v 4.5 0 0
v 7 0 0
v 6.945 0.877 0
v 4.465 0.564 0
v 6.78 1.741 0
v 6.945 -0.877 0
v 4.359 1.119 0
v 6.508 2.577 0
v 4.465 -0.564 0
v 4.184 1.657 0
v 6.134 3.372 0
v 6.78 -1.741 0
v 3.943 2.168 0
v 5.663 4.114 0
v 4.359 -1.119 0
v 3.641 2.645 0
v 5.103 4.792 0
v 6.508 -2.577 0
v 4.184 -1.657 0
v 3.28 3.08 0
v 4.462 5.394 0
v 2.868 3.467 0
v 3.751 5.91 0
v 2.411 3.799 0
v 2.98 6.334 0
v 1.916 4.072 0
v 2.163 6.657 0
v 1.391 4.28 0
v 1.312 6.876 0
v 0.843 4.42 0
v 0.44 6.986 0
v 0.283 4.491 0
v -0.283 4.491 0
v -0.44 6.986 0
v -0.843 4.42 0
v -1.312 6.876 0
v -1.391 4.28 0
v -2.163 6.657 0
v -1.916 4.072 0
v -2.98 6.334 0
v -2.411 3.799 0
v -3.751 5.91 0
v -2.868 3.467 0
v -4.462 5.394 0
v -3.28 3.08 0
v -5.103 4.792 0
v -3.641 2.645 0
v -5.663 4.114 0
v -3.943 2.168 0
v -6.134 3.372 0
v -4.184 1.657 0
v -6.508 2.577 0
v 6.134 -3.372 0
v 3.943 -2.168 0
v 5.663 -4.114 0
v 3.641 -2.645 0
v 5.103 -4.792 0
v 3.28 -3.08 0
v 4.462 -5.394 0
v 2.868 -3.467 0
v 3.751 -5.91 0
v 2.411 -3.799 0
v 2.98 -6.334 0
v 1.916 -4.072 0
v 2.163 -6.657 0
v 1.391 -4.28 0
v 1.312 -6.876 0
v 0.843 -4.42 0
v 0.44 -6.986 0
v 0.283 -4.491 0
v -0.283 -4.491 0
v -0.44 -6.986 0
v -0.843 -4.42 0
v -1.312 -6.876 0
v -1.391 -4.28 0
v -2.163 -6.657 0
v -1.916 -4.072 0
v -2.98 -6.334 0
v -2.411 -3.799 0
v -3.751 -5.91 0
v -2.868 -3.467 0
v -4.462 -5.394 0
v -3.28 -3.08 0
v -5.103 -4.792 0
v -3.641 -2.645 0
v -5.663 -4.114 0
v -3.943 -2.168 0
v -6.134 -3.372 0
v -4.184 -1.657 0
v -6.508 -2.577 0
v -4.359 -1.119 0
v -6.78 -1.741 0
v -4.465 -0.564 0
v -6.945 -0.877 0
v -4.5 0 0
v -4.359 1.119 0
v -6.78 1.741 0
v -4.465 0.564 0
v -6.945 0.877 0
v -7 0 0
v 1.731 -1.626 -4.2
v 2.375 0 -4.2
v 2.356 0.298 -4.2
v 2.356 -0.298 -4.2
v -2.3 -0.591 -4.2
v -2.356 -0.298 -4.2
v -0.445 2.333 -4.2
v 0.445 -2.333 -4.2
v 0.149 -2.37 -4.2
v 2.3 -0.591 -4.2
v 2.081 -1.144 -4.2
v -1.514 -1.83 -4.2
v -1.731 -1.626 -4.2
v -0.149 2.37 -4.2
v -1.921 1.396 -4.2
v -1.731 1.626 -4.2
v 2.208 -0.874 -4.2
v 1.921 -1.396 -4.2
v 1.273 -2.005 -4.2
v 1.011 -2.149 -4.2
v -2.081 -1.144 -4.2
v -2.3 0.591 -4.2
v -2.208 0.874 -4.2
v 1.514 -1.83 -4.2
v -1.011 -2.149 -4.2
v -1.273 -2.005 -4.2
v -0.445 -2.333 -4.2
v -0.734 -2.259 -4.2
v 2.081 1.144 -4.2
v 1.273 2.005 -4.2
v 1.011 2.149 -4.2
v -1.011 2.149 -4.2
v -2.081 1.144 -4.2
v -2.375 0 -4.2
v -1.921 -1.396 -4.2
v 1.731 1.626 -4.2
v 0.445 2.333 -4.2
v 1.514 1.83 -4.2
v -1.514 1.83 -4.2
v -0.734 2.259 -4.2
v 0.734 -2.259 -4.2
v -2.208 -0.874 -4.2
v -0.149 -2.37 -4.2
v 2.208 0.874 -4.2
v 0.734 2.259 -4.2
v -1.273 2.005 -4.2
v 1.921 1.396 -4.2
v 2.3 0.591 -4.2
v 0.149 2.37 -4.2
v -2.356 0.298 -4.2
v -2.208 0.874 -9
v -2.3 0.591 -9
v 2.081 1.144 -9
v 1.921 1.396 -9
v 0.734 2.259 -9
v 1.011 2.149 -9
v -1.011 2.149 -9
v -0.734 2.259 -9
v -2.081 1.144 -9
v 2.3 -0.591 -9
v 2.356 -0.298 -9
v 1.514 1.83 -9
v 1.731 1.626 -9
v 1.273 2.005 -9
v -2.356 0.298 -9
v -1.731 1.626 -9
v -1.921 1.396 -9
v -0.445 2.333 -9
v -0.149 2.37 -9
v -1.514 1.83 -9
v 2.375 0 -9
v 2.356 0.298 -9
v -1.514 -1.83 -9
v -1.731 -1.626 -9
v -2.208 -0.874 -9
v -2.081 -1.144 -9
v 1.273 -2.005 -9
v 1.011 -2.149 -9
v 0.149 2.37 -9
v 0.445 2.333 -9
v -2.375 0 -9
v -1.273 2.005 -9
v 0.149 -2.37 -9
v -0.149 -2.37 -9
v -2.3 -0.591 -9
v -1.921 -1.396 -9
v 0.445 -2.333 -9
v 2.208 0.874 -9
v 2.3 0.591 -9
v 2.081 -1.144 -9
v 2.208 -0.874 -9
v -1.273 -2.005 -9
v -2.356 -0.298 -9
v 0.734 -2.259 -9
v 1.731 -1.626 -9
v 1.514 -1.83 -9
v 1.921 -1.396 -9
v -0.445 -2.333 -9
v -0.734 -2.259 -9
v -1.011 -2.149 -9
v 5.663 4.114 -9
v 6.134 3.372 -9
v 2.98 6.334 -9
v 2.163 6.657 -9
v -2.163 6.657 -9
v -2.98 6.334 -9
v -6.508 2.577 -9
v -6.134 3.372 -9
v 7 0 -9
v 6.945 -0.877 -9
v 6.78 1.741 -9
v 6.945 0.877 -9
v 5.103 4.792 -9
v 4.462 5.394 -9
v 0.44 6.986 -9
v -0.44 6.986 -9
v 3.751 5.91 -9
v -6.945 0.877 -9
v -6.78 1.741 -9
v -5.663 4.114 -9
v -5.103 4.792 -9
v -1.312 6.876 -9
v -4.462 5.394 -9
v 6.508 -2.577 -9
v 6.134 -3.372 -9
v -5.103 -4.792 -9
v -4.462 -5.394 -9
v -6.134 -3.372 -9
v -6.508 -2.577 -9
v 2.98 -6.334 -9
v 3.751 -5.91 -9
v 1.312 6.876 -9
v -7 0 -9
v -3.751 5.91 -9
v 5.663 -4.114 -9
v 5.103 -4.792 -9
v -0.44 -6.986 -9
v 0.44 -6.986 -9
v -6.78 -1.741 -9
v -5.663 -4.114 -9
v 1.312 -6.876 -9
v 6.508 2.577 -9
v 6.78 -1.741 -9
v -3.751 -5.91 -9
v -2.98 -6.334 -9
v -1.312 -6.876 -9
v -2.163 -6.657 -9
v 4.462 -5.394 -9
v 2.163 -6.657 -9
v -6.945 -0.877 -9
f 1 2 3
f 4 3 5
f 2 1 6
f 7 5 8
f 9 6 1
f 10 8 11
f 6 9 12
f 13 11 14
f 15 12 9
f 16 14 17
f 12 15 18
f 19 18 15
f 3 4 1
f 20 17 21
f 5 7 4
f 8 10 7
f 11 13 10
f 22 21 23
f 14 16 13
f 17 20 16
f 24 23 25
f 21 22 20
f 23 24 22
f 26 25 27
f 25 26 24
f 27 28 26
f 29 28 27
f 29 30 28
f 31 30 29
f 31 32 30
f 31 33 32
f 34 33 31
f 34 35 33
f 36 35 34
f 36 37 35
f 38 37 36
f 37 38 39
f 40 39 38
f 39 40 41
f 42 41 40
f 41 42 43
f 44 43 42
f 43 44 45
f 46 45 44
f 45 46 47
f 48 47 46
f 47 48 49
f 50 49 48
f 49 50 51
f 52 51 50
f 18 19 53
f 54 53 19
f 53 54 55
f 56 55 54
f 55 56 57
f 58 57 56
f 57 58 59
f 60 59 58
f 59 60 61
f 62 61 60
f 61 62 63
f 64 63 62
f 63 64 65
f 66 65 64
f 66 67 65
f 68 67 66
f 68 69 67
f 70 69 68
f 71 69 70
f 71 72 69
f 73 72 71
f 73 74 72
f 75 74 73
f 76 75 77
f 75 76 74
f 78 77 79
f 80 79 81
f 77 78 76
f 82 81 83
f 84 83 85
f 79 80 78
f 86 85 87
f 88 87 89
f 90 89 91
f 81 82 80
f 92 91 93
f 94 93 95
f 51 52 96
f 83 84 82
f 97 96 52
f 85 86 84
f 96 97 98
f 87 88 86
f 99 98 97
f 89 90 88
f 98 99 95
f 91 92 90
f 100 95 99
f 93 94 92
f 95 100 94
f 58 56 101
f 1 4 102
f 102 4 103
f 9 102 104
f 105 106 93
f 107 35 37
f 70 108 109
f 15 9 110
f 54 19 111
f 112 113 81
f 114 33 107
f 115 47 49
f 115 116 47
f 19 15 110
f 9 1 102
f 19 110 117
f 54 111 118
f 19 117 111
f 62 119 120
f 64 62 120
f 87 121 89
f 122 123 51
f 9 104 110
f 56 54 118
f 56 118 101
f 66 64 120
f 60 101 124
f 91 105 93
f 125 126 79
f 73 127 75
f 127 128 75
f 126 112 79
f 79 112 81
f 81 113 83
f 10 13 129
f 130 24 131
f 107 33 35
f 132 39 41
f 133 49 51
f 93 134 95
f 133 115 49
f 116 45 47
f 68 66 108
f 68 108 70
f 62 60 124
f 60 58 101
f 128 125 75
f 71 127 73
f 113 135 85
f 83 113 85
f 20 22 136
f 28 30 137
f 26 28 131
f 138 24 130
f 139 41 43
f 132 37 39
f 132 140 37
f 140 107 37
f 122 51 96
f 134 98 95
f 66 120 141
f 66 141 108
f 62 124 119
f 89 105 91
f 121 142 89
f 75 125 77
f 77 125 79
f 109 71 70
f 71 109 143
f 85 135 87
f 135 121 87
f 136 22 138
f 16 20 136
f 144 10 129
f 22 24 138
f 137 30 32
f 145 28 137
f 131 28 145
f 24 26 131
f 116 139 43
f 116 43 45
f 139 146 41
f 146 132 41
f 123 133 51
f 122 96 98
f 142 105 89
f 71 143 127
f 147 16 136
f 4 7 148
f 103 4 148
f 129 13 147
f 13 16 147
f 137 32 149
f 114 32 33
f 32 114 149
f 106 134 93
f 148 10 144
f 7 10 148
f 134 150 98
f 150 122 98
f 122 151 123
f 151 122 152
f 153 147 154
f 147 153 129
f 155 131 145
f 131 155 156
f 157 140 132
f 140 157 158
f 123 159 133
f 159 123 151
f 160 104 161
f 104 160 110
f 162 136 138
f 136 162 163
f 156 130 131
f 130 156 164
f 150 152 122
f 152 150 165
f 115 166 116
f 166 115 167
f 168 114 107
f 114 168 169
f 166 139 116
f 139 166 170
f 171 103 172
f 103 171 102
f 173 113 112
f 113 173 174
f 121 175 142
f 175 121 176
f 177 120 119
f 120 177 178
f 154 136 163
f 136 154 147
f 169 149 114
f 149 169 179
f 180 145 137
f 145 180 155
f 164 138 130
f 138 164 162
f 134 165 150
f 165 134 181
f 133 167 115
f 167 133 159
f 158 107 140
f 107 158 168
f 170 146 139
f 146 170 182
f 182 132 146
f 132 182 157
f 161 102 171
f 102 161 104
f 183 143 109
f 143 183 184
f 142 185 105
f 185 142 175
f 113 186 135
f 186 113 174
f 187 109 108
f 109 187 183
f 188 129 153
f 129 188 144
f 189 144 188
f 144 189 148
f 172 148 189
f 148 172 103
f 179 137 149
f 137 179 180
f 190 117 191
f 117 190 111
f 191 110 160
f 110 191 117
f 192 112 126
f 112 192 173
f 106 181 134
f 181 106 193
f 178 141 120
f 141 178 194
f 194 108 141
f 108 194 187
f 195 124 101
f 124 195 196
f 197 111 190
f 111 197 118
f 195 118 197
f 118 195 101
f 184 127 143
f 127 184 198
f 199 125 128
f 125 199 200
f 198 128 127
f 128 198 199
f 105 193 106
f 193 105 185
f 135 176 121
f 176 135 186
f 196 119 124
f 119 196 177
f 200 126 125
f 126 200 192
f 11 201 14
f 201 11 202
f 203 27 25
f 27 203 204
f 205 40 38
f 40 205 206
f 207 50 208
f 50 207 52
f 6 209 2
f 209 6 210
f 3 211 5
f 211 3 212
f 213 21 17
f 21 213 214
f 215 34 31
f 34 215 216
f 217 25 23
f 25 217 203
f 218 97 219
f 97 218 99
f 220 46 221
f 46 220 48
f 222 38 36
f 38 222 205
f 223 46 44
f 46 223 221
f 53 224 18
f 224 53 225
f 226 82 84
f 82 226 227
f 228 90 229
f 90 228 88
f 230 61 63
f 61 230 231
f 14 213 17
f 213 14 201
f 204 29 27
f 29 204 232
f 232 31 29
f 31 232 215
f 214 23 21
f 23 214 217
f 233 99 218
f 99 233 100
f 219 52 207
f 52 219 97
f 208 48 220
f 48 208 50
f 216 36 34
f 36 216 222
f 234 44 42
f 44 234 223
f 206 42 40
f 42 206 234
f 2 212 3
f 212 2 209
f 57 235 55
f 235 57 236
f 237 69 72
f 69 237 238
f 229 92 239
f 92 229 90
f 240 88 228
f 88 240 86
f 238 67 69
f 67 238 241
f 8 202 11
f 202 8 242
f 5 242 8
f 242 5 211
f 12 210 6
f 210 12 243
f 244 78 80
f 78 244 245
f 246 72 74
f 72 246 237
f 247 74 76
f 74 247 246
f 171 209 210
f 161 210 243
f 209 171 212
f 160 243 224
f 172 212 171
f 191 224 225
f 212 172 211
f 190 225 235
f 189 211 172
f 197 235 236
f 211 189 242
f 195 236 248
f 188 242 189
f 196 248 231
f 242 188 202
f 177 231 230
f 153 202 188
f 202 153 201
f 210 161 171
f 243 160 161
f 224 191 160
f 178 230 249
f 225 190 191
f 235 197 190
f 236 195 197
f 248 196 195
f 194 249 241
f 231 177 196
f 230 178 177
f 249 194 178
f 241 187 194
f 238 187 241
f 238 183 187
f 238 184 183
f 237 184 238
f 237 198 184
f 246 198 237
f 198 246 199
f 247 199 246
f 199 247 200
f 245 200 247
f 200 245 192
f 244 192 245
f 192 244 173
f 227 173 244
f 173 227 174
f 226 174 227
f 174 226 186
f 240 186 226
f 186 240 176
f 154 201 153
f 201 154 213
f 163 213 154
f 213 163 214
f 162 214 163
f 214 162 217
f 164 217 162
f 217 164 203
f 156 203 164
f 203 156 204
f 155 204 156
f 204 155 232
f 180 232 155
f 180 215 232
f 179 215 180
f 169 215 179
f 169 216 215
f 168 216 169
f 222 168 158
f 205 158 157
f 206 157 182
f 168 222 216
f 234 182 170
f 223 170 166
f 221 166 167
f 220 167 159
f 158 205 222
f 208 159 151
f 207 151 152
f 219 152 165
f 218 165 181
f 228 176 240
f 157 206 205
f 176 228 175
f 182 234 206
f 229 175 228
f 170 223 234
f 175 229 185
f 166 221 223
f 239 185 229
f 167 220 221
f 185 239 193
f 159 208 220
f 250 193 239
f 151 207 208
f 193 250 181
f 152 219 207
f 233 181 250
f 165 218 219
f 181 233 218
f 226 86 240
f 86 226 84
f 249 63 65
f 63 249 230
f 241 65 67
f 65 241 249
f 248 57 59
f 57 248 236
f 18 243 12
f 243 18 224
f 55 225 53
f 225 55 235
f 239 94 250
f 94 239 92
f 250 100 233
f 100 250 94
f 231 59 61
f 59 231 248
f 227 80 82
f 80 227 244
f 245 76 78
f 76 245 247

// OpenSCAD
$fn = 50;


difference() {
	union() {
		translate(v = [0, 0, -9.0000000000]) {
			cylinder(h = 9, r = 7.0000000000);
		}
	}
	union() {
		translate(v = [0, 0, 0]) {
			rotate(a = [0, 0, 0]) {
				difference() {
					union() {
						translate(v = [0, 0, -12.0000000000]) {
							cylinder(h = 12, r = 2.2500000000);
						}
						translate(v = [0, 0, -4.2000000000]) {
							cylinder(h = 4.2000000000, r1 = 2.3750000000, r2 = 4.5000000000);
						}
						translate(v = [0, 0, -12.0000000000]) {
							cylinder(h = 12, r = 2.3750000000);
						}
						translate(v = [0, 0, -12.0000000000]) {
							cylinder(h = 12, r = 2.2500000000);
						}
					}
					union();
				}
			}
		}
	}
}
